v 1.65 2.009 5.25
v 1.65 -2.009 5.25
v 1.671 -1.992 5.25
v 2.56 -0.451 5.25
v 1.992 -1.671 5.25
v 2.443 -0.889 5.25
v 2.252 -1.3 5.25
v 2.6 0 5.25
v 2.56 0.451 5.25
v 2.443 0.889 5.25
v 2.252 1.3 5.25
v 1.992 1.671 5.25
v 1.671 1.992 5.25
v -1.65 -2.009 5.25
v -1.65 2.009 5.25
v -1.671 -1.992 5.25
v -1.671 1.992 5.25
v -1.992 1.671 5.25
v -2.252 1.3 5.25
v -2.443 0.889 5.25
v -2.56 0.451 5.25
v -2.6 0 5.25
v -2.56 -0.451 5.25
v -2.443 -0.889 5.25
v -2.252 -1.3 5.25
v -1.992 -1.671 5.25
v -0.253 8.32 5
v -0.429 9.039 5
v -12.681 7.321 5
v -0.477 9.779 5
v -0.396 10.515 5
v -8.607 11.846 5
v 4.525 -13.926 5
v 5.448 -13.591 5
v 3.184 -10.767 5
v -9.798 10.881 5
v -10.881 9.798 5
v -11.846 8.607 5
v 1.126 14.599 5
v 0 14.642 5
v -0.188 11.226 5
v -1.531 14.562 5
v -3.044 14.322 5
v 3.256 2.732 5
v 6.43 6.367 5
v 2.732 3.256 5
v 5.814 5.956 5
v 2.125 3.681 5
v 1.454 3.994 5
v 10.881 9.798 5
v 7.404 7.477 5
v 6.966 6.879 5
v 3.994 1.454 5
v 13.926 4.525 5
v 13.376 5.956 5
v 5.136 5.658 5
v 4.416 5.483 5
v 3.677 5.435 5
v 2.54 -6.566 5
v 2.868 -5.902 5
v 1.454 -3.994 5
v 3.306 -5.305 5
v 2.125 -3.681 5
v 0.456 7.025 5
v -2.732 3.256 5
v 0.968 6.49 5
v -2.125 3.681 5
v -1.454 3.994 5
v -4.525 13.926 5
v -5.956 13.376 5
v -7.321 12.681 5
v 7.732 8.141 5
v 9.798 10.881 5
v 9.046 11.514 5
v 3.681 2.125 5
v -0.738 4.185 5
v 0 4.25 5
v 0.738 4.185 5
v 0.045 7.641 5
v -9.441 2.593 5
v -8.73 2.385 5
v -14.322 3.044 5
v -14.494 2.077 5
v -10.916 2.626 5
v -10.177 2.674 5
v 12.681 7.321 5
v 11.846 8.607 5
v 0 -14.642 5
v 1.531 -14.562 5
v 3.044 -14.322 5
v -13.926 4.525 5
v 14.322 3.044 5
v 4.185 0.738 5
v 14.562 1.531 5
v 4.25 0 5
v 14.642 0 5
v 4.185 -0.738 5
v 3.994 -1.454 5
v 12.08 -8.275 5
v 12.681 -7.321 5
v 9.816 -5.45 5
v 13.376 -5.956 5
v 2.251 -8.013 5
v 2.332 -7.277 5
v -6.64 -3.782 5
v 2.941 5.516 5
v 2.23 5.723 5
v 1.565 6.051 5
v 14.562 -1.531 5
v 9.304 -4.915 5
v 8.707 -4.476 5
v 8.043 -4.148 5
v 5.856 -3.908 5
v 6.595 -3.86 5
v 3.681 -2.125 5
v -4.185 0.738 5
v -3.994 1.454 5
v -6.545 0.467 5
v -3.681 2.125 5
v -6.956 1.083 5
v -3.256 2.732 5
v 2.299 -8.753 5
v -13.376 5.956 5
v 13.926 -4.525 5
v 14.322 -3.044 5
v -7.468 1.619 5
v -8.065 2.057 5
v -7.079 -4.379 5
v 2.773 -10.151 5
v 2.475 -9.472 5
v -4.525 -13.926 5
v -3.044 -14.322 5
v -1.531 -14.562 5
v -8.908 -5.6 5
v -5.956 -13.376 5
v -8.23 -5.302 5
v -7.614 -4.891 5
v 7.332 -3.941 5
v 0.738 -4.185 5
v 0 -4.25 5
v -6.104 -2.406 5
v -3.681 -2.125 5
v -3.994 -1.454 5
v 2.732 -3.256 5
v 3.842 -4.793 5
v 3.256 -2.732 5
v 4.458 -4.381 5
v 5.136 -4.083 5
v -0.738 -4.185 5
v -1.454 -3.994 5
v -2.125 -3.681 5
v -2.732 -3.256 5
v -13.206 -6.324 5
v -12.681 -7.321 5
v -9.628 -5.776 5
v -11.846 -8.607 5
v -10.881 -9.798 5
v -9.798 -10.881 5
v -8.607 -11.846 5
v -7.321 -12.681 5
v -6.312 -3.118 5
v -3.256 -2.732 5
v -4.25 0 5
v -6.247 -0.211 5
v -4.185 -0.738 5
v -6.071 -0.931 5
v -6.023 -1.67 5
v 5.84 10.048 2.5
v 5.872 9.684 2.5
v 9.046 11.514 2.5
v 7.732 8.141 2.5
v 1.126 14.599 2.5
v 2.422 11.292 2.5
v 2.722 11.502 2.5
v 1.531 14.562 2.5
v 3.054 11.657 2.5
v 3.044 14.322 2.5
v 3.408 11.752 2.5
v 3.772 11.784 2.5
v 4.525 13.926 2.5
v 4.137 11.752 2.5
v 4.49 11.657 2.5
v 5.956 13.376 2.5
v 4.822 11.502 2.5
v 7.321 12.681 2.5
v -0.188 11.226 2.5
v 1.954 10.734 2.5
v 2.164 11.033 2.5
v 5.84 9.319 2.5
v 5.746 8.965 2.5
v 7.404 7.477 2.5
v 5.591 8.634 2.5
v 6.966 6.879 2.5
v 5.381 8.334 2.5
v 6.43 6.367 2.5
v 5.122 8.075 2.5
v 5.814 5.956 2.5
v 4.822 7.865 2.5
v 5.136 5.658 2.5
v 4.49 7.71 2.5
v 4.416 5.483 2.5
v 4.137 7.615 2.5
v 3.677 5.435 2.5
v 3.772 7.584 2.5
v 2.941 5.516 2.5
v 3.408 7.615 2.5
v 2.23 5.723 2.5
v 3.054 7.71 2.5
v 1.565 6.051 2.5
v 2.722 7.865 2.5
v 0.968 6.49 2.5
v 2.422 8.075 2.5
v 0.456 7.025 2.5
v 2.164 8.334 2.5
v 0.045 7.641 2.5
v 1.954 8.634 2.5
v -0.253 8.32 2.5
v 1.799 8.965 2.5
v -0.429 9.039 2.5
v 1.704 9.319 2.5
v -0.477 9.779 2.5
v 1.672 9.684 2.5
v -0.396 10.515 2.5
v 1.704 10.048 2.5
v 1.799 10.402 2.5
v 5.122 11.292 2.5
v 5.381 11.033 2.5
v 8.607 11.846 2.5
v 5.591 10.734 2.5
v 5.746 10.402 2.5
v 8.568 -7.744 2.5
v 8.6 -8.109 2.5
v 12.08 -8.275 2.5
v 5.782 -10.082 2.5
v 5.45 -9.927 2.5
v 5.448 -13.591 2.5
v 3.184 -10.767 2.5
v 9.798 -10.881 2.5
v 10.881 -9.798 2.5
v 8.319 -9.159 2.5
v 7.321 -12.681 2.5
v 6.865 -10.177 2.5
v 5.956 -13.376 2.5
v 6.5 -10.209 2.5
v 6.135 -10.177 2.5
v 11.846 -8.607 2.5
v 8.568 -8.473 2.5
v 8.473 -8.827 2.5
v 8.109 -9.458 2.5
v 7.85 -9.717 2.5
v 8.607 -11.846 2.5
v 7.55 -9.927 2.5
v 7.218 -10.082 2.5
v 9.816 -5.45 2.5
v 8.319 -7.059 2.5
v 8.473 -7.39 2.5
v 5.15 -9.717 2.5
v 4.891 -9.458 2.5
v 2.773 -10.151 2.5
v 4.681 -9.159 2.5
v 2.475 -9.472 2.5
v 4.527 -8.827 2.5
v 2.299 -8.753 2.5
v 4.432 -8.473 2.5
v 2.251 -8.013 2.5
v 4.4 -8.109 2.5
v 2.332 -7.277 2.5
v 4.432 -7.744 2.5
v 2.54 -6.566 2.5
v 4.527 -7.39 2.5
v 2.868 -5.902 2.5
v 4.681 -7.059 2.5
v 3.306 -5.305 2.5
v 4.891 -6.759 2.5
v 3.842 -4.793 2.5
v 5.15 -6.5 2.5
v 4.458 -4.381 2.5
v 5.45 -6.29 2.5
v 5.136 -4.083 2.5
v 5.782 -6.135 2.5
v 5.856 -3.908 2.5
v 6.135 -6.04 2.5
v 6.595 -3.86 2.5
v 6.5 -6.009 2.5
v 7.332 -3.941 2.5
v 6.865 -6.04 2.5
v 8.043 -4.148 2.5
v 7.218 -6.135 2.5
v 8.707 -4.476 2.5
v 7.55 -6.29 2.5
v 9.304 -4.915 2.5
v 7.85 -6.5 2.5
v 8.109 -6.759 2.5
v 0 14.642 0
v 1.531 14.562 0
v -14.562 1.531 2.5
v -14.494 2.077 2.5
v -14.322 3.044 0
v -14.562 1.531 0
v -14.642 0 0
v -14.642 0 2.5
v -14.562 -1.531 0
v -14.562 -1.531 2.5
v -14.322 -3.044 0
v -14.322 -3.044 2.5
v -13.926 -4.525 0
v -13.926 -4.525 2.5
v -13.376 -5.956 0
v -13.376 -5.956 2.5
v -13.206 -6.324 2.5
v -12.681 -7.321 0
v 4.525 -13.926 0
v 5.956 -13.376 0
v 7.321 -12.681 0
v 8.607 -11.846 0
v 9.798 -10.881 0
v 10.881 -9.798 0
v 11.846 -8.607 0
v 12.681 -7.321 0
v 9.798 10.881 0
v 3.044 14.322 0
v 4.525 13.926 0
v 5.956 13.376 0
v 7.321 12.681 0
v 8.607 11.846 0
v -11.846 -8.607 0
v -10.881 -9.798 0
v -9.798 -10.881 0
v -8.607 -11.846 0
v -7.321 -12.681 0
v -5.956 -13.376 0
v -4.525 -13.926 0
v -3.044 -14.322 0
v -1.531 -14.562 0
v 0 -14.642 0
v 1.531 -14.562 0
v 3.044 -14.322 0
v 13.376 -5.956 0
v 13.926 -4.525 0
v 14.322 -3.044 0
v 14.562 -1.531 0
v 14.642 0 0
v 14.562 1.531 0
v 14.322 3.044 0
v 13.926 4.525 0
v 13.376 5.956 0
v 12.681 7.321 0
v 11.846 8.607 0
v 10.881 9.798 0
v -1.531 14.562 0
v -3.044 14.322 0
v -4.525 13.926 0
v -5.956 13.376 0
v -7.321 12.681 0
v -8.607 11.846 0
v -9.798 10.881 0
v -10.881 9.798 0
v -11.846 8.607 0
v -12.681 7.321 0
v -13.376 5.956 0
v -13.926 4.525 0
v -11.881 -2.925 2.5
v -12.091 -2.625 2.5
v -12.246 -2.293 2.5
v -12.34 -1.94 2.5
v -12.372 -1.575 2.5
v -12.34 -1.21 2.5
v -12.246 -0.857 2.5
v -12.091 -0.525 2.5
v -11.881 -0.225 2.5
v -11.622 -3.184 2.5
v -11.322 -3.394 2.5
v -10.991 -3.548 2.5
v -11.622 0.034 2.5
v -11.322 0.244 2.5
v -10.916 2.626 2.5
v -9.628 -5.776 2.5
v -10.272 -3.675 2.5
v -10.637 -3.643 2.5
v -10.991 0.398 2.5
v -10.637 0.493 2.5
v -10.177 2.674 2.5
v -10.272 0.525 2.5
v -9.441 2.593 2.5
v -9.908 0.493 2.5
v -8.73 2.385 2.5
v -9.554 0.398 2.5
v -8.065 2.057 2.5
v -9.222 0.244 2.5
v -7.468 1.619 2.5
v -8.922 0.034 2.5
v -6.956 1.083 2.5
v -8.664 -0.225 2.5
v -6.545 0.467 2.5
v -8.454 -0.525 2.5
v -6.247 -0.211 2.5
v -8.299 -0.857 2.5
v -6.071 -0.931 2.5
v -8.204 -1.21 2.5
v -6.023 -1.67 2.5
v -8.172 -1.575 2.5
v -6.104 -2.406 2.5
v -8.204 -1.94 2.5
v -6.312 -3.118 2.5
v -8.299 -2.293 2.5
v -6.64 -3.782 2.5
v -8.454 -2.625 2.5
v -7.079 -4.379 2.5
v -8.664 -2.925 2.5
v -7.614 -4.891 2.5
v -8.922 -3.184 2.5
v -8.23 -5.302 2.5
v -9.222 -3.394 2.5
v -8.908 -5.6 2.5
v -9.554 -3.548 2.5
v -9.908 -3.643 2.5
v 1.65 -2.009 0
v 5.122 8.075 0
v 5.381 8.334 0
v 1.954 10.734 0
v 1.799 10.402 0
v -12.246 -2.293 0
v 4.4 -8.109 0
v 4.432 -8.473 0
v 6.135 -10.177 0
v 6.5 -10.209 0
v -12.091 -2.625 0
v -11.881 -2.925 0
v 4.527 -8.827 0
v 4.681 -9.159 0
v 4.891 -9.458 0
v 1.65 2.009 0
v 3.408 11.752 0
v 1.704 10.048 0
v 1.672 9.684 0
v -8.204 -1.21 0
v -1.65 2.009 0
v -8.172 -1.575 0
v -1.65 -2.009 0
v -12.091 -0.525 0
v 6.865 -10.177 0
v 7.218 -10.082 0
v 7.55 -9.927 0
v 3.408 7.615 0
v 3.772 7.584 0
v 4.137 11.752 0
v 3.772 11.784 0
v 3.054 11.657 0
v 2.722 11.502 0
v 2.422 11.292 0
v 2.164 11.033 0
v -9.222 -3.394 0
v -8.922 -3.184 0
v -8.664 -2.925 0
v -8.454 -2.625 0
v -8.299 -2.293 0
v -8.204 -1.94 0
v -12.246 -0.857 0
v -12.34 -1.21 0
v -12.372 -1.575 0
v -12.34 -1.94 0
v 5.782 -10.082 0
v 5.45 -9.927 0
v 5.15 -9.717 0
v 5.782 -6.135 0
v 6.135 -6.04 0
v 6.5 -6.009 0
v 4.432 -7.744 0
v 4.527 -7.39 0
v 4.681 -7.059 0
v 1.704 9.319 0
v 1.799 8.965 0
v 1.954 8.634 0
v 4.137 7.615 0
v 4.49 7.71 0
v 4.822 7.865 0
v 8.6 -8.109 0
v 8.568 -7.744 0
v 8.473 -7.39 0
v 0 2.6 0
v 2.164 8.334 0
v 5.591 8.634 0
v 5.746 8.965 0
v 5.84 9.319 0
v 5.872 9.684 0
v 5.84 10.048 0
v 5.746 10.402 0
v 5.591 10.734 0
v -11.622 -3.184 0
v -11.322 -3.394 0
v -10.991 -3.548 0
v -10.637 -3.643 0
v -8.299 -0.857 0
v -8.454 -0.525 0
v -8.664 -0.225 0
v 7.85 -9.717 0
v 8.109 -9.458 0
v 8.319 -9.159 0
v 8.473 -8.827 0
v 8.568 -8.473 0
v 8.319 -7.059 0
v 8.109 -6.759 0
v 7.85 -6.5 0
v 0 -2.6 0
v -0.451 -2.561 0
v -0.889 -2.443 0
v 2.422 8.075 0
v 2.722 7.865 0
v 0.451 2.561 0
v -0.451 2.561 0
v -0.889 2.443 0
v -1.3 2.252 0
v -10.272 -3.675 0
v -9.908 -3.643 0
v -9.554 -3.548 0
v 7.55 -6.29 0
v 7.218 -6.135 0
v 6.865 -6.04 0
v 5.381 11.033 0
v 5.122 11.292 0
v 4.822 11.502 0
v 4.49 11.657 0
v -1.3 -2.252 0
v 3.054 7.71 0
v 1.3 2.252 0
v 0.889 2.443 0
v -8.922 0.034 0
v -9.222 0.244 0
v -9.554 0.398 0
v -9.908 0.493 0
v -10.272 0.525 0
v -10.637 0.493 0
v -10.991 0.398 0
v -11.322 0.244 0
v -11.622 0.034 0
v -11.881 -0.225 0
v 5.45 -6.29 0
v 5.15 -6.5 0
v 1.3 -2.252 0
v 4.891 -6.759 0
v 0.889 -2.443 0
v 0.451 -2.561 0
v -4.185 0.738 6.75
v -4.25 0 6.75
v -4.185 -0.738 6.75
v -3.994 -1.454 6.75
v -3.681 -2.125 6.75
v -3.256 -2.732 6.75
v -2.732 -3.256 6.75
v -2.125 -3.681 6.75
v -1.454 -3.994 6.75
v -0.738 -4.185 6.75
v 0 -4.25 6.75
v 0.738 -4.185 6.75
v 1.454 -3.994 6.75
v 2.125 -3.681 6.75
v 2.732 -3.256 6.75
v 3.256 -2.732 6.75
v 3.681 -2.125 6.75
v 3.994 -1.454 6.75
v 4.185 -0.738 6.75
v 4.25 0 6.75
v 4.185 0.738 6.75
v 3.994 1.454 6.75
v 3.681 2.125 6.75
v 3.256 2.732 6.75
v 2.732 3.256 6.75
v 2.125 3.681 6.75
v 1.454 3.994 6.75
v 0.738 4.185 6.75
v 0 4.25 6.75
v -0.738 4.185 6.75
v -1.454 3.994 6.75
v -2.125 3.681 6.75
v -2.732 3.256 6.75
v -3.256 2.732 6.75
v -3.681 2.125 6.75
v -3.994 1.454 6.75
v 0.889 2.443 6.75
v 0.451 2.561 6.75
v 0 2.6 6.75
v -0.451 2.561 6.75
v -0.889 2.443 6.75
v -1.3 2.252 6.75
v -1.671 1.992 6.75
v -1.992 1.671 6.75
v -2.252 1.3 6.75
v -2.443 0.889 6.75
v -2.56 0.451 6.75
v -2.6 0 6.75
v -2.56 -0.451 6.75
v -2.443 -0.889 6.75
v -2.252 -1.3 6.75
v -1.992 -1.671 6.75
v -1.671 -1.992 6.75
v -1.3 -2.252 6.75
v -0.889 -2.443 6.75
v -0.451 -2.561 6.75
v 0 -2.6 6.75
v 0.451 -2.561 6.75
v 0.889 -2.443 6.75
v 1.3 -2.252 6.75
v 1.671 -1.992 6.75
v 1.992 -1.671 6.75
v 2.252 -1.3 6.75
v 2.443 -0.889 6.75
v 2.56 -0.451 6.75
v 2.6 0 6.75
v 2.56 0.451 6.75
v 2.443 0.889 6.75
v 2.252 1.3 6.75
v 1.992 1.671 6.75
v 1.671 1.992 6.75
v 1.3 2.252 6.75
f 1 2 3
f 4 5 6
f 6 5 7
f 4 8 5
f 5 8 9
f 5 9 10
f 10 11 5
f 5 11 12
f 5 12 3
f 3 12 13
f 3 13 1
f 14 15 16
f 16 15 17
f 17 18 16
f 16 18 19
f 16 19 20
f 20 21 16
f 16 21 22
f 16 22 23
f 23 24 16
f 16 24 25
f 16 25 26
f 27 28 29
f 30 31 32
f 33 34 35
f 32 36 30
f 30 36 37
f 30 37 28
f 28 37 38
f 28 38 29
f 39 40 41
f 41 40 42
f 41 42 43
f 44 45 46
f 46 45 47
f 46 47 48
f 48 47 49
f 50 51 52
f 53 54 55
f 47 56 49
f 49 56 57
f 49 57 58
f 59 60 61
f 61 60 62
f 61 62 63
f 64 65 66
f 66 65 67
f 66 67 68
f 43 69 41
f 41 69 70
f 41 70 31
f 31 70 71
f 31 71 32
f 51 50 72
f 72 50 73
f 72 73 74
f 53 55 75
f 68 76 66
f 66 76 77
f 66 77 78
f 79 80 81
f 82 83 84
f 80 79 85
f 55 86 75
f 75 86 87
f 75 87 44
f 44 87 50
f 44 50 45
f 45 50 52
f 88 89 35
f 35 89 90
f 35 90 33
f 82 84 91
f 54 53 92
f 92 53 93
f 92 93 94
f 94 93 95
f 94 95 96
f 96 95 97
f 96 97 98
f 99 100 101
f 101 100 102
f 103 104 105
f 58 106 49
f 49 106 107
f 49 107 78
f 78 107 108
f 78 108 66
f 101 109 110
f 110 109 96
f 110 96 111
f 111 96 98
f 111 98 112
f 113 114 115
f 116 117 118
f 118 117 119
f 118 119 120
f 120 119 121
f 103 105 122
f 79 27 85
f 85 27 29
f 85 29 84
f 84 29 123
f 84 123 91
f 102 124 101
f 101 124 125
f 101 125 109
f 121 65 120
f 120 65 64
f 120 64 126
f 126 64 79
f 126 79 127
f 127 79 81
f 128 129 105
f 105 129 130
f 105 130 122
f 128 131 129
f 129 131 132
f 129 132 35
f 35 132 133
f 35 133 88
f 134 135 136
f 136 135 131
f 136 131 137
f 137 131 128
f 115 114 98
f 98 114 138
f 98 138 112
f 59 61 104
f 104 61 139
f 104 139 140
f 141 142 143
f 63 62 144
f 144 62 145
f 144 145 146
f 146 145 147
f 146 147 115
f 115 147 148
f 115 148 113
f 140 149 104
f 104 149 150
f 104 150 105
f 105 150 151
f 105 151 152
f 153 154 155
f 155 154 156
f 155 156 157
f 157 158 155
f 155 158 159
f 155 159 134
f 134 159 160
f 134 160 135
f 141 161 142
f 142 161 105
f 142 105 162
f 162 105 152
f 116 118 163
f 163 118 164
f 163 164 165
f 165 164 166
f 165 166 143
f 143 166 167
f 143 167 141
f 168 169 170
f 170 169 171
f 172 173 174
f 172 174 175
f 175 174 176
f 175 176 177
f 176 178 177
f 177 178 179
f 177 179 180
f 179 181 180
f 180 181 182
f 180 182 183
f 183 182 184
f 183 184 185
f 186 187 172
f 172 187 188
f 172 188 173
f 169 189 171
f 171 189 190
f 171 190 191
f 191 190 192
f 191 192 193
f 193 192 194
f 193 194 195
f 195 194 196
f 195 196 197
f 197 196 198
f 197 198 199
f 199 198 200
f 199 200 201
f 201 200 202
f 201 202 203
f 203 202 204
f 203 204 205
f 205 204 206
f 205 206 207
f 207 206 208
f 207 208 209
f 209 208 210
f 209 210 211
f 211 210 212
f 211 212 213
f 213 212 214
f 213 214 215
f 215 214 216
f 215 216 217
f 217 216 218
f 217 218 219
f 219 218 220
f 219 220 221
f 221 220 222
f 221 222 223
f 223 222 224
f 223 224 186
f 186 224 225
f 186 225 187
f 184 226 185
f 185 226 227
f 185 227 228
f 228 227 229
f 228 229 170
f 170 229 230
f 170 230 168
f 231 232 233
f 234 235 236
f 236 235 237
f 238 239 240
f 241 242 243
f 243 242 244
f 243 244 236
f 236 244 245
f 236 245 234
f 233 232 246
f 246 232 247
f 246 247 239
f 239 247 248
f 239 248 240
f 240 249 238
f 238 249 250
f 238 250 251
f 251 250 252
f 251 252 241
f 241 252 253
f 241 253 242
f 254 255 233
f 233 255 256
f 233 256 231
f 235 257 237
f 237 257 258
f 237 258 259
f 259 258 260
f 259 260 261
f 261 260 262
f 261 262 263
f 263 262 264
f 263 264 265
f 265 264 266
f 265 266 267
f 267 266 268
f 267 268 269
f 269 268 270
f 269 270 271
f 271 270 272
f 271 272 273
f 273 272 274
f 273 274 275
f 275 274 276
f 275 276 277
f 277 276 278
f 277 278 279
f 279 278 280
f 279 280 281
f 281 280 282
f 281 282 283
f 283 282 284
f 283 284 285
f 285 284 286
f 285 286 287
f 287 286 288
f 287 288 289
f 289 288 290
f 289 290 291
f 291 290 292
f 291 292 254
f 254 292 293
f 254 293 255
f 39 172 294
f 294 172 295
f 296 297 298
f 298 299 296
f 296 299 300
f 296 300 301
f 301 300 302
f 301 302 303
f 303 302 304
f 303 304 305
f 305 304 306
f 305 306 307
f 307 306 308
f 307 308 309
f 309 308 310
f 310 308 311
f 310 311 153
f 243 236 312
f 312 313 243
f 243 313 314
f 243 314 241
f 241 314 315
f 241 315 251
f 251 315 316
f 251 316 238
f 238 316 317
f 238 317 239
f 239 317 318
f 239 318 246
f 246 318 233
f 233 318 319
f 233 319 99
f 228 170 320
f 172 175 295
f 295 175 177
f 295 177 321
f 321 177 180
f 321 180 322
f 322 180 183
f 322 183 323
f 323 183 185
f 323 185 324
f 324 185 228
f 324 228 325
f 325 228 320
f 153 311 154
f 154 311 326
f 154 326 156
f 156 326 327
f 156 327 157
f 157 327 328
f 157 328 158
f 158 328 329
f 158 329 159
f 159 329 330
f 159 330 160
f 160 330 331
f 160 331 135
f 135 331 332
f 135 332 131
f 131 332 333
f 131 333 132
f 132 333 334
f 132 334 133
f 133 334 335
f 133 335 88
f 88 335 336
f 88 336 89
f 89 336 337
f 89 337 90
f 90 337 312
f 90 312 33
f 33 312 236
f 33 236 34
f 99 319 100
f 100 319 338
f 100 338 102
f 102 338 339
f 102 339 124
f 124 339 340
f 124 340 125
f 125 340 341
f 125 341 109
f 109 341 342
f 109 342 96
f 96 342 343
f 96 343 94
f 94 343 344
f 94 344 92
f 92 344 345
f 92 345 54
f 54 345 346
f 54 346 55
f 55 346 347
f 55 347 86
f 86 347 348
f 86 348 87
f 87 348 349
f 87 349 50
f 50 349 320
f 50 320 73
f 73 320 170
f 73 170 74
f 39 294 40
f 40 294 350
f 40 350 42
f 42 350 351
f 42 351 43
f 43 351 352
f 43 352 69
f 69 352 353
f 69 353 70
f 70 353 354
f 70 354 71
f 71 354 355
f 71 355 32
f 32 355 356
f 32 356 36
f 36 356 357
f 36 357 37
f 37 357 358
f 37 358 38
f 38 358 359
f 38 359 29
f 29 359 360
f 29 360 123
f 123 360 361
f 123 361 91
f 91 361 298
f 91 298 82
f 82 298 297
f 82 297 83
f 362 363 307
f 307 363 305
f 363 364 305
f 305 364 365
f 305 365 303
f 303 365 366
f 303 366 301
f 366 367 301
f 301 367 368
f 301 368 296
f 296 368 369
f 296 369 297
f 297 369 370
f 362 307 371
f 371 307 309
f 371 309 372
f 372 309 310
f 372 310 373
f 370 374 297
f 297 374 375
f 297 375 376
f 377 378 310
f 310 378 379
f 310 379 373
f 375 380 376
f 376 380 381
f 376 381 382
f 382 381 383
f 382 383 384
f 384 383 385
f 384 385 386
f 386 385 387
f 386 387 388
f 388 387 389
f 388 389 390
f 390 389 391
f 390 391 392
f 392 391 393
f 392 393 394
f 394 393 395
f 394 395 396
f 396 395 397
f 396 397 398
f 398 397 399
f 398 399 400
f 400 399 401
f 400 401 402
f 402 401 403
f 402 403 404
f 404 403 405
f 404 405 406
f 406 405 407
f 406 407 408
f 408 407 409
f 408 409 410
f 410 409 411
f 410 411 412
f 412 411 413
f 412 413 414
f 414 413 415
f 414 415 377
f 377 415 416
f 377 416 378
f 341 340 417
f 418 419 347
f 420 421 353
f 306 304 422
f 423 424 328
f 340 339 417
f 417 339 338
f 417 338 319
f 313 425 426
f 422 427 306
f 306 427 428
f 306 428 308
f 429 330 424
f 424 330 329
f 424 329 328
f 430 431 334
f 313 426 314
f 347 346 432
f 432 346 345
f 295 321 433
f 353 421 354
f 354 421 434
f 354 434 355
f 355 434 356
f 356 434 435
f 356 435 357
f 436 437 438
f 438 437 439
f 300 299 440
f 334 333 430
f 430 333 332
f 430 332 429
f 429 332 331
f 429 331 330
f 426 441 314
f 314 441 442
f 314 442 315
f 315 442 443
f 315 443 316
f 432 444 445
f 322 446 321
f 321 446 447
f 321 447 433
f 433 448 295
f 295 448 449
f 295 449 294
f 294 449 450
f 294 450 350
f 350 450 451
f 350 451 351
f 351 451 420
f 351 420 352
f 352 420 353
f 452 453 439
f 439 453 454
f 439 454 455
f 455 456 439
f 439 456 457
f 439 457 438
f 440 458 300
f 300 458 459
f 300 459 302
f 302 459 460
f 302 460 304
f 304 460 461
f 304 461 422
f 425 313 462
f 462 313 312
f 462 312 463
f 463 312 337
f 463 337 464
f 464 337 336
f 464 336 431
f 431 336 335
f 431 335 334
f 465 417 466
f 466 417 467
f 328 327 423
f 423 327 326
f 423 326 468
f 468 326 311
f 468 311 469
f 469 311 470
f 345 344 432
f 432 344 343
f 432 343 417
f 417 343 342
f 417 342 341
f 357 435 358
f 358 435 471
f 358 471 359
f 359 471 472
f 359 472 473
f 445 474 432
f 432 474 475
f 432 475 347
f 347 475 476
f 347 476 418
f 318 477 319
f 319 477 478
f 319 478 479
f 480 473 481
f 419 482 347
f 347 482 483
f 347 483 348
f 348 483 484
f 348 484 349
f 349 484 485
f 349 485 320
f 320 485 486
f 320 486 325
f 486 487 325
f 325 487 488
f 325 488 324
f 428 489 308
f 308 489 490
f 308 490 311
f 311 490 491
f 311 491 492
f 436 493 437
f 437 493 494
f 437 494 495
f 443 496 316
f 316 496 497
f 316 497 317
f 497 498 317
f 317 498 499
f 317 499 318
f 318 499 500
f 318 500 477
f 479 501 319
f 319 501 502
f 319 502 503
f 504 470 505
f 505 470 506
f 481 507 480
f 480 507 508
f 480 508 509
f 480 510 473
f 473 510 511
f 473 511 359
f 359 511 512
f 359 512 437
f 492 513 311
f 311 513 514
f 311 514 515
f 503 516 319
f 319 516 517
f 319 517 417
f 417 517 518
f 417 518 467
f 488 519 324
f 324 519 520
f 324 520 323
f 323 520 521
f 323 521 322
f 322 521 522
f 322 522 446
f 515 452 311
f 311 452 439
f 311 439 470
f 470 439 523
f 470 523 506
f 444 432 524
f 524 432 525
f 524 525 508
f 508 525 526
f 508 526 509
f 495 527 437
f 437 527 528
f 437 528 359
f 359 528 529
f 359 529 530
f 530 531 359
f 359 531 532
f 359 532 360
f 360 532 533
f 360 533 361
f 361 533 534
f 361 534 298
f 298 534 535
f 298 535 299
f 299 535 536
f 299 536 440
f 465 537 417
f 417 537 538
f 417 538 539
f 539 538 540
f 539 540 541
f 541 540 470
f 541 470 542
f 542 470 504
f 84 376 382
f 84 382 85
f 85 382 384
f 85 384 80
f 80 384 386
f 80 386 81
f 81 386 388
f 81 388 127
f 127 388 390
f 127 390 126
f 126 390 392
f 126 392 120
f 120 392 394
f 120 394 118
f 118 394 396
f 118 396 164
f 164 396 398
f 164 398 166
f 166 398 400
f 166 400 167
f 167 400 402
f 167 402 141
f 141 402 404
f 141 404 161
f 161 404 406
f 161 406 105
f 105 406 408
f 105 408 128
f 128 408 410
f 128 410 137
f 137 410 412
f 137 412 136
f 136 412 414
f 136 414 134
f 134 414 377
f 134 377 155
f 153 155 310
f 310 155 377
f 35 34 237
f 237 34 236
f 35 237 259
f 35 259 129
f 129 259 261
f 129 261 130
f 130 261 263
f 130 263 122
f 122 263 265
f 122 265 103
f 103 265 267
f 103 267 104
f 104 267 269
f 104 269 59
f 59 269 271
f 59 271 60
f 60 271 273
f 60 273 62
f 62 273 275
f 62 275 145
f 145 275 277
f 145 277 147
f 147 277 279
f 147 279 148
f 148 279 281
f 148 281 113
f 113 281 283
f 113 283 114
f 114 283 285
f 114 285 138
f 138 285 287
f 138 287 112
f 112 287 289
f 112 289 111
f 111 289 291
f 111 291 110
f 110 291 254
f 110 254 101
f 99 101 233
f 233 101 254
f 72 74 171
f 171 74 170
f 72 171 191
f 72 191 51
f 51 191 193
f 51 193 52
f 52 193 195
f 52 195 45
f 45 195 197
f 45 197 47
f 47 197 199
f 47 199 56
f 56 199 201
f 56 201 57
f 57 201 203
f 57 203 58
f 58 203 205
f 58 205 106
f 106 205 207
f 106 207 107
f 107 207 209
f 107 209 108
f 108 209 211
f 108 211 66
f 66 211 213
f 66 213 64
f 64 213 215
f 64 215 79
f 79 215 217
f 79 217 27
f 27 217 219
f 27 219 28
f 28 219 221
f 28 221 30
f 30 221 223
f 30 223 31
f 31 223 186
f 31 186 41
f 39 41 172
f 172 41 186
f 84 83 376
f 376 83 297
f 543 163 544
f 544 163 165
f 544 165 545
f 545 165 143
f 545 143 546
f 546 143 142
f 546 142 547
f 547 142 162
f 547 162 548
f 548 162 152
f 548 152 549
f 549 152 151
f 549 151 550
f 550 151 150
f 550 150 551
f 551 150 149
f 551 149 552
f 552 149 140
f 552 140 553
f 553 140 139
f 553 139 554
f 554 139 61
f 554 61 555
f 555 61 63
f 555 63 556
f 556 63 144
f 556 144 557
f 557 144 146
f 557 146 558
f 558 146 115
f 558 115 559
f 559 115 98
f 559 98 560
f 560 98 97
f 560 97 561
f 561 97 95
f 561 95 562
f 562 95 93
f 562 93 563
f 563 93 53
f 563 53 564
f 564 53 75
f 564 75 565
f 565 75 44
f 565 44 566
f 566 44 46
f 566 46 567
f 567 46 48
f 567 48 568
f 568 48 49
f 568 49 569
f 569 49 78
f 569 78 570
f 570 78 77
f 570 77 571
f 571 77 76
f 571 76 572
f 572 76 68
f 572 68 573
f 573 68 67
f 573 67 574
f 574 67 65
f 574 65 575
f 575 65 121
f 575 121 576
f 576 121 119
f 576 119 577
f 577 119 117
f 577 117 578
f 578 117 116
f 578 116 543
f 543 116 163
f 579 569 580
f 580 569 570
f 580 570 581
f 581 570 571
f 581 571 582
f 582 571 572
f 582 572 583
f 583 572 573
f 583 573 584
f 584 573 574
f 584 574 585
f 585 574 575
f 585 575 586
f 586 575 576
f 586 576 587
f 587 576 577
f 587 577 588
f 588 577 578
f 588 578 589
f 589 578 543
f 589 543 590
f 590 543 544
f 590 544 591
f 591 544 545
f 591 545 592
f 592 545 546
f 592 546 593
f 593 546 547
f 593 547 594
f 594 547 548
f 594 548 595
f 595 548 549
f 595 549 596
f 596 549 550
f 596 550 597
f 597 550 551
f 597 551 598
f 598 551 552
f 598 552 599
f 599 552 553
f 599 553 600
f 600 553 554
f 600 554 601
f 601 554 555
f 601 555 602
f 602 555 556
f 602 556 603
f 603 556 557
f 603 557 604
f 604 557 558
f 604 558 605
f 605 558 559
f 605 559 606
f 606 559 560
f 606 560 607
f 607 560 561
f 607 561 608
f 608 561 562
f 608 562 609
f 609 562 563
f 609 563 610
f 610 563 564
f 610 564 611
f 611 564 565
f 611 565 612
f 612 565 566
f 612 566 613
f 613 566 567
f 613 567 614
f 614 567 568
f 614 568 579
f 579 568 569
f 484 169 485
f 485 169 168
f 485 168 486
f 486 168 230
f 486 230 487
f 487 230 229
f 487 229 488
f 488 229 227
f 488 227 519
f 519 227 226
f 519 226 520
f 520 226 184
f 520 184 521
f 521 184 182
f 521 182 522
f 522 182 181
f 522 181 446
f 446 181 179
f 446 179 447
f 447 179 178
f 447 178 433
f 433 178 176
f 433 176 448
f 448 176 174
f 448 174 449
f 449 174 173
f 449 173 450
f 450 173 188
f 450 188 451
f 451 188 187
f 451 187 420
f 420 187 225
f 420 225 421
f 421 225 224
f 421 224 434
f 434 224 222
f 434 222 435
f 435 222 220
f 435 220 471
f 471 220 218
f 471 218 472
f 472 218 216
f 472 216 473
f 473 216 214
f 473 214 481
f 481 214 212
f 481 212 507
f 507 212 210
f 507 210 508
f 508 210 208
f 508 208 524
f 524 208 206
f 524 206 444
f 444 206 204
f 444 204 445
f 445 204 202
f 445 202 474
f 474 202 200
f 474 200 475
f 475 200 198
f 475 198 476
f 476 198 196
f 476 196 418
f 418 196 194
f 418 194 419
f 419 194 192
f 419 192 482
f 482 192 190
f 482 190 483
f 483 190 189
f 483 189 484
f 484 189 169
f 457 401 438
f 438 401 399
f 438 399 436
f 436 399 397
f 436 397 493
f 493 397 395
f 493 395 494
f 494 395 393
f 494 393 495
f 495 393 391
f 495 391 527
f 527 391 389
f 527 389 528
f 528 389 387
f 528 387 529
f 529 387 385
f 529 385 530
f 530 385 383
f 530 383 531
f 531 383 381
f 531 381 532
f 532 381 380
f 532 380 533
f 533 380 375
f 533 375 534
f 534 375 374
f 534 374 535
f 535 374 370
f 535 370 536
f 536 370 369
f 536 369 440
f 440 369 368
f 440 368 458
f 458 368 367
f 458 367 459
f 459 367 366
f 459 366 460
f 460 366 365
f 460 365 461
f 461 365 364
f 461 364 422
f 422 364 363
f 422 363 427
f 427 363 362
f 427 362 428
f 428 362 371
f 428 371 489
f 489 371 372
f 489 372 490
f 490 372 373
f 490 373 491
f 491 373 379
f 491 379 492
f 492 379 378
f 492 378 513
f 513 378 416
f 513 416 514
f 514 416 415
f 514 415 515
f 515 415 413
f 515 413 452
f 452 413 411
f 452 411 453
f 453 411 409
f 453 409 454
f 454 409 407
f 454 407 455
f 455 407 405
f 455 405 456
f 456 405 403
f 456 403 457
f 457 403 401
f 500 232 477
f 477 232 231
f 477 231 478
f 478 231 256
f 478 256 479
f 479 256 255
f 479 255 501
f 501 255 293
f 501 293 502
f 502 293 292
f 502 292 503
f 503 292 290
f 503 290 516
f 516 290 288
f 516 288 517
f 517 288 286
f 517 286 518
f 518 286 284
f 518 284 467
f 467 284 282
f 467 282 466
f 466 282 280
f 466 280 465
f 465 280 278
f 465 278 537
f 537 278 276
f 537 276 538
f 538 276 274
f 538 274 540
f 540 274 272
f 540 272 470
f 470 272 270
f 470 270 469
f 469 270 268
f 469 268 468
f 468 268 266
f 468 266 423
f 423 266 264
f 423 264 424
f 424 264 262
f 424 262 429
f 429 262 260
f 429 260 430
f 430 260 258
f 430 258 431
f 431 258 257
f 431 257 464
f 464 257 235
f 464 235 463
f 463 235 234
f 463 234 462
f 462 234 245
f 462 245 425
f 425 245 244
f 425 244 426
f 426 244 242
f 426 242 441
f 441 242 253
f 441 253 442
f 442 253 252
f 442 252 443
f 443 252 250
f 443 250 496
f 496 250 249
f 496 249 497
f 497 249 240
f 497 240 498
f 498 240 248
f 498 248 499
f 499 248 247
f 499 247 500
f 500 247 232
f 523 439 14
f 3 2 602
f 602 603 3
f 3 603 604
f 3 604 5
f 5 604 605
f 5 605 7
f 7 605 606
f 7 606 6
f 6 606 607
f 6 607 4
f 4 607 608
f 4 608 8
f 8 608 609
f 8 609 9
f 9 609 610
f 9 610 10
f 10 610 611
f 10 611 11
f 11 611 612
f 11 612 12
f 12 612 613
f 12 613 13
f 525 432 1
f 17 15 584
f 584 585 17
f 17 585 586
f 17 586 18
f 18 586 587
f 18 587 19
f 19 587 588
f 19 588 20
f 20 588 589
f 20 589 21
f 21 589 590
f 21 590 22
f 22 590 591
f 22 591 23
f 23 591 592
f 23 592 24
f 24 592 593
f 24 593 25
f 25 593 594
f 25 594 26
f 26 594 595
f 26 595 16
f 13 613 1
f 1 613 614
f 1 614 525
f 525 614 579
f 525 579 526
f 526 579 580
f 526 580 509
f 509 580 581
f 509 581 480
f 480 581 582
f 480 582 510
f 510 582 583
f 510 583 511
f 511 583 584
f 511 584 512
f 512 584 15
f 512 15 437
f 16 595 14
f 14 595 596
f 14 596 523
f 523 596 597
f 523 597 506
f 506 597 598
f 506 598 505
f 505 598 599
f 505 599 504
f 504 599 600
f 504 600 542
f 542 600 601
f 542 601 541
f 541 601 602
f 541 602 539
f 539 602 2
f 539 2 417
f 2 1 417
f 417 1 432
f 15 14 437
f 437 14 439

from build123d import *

# Parameters (mm, degrees)
SKETCH1_R           = 14.642304845
BOSS_EXTRUDE1_DEPTH = 2.5
BOSS_EXTRUDE2_DEPTH = 2.5
SKETCH3_R           = 4.25
BOSS_EXTRUDE3_DEPTH = 1.75
SKETCH4_R           = 2.1
CUT_EXTRUDE1_DEPTH  = 22.138984895
SKETCH5_R           = 2.6
CUT_EXTRUDE2_DEPTH  = 1.5
CUT_EXTRUDE3_REACH  = 23.78


with BuildPart() as part:
    # Sketch1 → Boss-Extrude1 (new body)
    with BuildSketch(Plane.XY):
        Circle(SKETCH1_R)
    extrude(amount=BOSS_EXTRUDE1_DEPTH)

    # Sketch2 → Boss-Extrude2 (add)
    with BuildSketch(Plane.XY.offset(2.5)):
        with BuildLine():
            Line((9.046191288, 11.513622991), (7.732334838, 8.140853638))
            ThreePointArc((7.732334838, 8.140853638), (2.22953316, 5.723381055), (-0.187939423, 11.226182734))
            Line((-0.187939423, 11.226182734), (1.125917027, 14.598952087))
            ThreePointArc((1.125917027, 14.598952087), (-9.158320976, 11.424633389), (-14.494185643, 2.077419967))
            Line((-14.494185643, 2.077419967), (-10.916353478, 2.625971582))
            ThreePointArc((-10.916353478, 2.625971582), (-6.071359969, -0.930858173), (-9.628189724, -5.775851681))
            Line((-9.628189724, -5.775851681), (-13.206021889, -6.324403296))
            ThreePointArc((-13.206021889, -6.324403296), (-5.314862256, -13.643655316), (5.447994356, -13.591042958))
            Line((5.447994356, -13.591042958), (3.18401864, -10.766825219))
            ThreePointArc((3.18401864, -10.766825219), (3.84182681, -4.792522882), (9.816129146, -5.450331052))
            Line((9.816129146, -5.450331052), (12.080104862, -8.274548791))
            ThreePointArc((12.080104862, -8.274548791), (14.473183232, 2.219021927), (9.046191288, 11.513622991))
        make_face()
    extrude(amount=BOSS_EXTRUDE2_DEPTH)

    # Sketch3 → Boss-Extrude3 (add)
    with BuildSketch(Plane.XY.offset(5)):
        with Locations(Location((0, 0, 0), (0, 0, 180))):
            Circle(SKETCH3_R)
    extrude(amount=BOSS_EXTRUDE3_DEPTH)

    # Sketch4 → Cut-Extrude1 (cut, through all)
    with BuildSketch(Plane.XY.offset(2.5)):
        with Locations((3.772197708, 9.683518186)):
            Circle(SKETCH4_R)
        with Locations((-10.272271601, -1.57494005)):
            Circle(SKETCH4_R)
        with Locations((6.500073893, -8.108578136)):
            Circle(SKETCH4_R)
    extrude(amount=-CUT_EXTRUDE1_DEPTH, mode=Mode.SUBTRACT)

    # Sketch5 → Cut-Extrude2 (cut)
    with BuildSketch(Plane.XY.offset(6.75)):
        Circle(SKETCH5_R)
    extrude(amount=-CUT_EXTRUDE2_DEPTH, mode=Mode.SUBTRACT)

    # Sketch6 → Cut-Extrude3 (cut, up to next)
    with BuildSketch(Plane.XY.offset(6.75), mode=Mode.PRIVATE) as cut_extrude3_sk1:
        with BuildLine():
            Line((-1.65, 2.00935313), (-1.65, -2.00935313))
            ThreePointArc((-1.65, -2.00935313), (0, -2.6), (1.65, -2.00935313))
            Line((1.65, -2.00935313), (1.65, 2.00935313))
            ThreePointArc((1.65, 2.00935313), (0, 2.6), (-1.65, 2.00935313))
        make_face()
    cut_extrude3_tool1 = extrude(cut_extrude3_sk1.sketch, amount=-CUT_EXTRUDE3_REACH, mode=Mode.PRIVATE) & part.part
    add(cut_extrude3_tool1.solids().sort_by_distance((0, 0, 6.75))[0], mode=Mode.SUBTRACT)


solid = part.part
